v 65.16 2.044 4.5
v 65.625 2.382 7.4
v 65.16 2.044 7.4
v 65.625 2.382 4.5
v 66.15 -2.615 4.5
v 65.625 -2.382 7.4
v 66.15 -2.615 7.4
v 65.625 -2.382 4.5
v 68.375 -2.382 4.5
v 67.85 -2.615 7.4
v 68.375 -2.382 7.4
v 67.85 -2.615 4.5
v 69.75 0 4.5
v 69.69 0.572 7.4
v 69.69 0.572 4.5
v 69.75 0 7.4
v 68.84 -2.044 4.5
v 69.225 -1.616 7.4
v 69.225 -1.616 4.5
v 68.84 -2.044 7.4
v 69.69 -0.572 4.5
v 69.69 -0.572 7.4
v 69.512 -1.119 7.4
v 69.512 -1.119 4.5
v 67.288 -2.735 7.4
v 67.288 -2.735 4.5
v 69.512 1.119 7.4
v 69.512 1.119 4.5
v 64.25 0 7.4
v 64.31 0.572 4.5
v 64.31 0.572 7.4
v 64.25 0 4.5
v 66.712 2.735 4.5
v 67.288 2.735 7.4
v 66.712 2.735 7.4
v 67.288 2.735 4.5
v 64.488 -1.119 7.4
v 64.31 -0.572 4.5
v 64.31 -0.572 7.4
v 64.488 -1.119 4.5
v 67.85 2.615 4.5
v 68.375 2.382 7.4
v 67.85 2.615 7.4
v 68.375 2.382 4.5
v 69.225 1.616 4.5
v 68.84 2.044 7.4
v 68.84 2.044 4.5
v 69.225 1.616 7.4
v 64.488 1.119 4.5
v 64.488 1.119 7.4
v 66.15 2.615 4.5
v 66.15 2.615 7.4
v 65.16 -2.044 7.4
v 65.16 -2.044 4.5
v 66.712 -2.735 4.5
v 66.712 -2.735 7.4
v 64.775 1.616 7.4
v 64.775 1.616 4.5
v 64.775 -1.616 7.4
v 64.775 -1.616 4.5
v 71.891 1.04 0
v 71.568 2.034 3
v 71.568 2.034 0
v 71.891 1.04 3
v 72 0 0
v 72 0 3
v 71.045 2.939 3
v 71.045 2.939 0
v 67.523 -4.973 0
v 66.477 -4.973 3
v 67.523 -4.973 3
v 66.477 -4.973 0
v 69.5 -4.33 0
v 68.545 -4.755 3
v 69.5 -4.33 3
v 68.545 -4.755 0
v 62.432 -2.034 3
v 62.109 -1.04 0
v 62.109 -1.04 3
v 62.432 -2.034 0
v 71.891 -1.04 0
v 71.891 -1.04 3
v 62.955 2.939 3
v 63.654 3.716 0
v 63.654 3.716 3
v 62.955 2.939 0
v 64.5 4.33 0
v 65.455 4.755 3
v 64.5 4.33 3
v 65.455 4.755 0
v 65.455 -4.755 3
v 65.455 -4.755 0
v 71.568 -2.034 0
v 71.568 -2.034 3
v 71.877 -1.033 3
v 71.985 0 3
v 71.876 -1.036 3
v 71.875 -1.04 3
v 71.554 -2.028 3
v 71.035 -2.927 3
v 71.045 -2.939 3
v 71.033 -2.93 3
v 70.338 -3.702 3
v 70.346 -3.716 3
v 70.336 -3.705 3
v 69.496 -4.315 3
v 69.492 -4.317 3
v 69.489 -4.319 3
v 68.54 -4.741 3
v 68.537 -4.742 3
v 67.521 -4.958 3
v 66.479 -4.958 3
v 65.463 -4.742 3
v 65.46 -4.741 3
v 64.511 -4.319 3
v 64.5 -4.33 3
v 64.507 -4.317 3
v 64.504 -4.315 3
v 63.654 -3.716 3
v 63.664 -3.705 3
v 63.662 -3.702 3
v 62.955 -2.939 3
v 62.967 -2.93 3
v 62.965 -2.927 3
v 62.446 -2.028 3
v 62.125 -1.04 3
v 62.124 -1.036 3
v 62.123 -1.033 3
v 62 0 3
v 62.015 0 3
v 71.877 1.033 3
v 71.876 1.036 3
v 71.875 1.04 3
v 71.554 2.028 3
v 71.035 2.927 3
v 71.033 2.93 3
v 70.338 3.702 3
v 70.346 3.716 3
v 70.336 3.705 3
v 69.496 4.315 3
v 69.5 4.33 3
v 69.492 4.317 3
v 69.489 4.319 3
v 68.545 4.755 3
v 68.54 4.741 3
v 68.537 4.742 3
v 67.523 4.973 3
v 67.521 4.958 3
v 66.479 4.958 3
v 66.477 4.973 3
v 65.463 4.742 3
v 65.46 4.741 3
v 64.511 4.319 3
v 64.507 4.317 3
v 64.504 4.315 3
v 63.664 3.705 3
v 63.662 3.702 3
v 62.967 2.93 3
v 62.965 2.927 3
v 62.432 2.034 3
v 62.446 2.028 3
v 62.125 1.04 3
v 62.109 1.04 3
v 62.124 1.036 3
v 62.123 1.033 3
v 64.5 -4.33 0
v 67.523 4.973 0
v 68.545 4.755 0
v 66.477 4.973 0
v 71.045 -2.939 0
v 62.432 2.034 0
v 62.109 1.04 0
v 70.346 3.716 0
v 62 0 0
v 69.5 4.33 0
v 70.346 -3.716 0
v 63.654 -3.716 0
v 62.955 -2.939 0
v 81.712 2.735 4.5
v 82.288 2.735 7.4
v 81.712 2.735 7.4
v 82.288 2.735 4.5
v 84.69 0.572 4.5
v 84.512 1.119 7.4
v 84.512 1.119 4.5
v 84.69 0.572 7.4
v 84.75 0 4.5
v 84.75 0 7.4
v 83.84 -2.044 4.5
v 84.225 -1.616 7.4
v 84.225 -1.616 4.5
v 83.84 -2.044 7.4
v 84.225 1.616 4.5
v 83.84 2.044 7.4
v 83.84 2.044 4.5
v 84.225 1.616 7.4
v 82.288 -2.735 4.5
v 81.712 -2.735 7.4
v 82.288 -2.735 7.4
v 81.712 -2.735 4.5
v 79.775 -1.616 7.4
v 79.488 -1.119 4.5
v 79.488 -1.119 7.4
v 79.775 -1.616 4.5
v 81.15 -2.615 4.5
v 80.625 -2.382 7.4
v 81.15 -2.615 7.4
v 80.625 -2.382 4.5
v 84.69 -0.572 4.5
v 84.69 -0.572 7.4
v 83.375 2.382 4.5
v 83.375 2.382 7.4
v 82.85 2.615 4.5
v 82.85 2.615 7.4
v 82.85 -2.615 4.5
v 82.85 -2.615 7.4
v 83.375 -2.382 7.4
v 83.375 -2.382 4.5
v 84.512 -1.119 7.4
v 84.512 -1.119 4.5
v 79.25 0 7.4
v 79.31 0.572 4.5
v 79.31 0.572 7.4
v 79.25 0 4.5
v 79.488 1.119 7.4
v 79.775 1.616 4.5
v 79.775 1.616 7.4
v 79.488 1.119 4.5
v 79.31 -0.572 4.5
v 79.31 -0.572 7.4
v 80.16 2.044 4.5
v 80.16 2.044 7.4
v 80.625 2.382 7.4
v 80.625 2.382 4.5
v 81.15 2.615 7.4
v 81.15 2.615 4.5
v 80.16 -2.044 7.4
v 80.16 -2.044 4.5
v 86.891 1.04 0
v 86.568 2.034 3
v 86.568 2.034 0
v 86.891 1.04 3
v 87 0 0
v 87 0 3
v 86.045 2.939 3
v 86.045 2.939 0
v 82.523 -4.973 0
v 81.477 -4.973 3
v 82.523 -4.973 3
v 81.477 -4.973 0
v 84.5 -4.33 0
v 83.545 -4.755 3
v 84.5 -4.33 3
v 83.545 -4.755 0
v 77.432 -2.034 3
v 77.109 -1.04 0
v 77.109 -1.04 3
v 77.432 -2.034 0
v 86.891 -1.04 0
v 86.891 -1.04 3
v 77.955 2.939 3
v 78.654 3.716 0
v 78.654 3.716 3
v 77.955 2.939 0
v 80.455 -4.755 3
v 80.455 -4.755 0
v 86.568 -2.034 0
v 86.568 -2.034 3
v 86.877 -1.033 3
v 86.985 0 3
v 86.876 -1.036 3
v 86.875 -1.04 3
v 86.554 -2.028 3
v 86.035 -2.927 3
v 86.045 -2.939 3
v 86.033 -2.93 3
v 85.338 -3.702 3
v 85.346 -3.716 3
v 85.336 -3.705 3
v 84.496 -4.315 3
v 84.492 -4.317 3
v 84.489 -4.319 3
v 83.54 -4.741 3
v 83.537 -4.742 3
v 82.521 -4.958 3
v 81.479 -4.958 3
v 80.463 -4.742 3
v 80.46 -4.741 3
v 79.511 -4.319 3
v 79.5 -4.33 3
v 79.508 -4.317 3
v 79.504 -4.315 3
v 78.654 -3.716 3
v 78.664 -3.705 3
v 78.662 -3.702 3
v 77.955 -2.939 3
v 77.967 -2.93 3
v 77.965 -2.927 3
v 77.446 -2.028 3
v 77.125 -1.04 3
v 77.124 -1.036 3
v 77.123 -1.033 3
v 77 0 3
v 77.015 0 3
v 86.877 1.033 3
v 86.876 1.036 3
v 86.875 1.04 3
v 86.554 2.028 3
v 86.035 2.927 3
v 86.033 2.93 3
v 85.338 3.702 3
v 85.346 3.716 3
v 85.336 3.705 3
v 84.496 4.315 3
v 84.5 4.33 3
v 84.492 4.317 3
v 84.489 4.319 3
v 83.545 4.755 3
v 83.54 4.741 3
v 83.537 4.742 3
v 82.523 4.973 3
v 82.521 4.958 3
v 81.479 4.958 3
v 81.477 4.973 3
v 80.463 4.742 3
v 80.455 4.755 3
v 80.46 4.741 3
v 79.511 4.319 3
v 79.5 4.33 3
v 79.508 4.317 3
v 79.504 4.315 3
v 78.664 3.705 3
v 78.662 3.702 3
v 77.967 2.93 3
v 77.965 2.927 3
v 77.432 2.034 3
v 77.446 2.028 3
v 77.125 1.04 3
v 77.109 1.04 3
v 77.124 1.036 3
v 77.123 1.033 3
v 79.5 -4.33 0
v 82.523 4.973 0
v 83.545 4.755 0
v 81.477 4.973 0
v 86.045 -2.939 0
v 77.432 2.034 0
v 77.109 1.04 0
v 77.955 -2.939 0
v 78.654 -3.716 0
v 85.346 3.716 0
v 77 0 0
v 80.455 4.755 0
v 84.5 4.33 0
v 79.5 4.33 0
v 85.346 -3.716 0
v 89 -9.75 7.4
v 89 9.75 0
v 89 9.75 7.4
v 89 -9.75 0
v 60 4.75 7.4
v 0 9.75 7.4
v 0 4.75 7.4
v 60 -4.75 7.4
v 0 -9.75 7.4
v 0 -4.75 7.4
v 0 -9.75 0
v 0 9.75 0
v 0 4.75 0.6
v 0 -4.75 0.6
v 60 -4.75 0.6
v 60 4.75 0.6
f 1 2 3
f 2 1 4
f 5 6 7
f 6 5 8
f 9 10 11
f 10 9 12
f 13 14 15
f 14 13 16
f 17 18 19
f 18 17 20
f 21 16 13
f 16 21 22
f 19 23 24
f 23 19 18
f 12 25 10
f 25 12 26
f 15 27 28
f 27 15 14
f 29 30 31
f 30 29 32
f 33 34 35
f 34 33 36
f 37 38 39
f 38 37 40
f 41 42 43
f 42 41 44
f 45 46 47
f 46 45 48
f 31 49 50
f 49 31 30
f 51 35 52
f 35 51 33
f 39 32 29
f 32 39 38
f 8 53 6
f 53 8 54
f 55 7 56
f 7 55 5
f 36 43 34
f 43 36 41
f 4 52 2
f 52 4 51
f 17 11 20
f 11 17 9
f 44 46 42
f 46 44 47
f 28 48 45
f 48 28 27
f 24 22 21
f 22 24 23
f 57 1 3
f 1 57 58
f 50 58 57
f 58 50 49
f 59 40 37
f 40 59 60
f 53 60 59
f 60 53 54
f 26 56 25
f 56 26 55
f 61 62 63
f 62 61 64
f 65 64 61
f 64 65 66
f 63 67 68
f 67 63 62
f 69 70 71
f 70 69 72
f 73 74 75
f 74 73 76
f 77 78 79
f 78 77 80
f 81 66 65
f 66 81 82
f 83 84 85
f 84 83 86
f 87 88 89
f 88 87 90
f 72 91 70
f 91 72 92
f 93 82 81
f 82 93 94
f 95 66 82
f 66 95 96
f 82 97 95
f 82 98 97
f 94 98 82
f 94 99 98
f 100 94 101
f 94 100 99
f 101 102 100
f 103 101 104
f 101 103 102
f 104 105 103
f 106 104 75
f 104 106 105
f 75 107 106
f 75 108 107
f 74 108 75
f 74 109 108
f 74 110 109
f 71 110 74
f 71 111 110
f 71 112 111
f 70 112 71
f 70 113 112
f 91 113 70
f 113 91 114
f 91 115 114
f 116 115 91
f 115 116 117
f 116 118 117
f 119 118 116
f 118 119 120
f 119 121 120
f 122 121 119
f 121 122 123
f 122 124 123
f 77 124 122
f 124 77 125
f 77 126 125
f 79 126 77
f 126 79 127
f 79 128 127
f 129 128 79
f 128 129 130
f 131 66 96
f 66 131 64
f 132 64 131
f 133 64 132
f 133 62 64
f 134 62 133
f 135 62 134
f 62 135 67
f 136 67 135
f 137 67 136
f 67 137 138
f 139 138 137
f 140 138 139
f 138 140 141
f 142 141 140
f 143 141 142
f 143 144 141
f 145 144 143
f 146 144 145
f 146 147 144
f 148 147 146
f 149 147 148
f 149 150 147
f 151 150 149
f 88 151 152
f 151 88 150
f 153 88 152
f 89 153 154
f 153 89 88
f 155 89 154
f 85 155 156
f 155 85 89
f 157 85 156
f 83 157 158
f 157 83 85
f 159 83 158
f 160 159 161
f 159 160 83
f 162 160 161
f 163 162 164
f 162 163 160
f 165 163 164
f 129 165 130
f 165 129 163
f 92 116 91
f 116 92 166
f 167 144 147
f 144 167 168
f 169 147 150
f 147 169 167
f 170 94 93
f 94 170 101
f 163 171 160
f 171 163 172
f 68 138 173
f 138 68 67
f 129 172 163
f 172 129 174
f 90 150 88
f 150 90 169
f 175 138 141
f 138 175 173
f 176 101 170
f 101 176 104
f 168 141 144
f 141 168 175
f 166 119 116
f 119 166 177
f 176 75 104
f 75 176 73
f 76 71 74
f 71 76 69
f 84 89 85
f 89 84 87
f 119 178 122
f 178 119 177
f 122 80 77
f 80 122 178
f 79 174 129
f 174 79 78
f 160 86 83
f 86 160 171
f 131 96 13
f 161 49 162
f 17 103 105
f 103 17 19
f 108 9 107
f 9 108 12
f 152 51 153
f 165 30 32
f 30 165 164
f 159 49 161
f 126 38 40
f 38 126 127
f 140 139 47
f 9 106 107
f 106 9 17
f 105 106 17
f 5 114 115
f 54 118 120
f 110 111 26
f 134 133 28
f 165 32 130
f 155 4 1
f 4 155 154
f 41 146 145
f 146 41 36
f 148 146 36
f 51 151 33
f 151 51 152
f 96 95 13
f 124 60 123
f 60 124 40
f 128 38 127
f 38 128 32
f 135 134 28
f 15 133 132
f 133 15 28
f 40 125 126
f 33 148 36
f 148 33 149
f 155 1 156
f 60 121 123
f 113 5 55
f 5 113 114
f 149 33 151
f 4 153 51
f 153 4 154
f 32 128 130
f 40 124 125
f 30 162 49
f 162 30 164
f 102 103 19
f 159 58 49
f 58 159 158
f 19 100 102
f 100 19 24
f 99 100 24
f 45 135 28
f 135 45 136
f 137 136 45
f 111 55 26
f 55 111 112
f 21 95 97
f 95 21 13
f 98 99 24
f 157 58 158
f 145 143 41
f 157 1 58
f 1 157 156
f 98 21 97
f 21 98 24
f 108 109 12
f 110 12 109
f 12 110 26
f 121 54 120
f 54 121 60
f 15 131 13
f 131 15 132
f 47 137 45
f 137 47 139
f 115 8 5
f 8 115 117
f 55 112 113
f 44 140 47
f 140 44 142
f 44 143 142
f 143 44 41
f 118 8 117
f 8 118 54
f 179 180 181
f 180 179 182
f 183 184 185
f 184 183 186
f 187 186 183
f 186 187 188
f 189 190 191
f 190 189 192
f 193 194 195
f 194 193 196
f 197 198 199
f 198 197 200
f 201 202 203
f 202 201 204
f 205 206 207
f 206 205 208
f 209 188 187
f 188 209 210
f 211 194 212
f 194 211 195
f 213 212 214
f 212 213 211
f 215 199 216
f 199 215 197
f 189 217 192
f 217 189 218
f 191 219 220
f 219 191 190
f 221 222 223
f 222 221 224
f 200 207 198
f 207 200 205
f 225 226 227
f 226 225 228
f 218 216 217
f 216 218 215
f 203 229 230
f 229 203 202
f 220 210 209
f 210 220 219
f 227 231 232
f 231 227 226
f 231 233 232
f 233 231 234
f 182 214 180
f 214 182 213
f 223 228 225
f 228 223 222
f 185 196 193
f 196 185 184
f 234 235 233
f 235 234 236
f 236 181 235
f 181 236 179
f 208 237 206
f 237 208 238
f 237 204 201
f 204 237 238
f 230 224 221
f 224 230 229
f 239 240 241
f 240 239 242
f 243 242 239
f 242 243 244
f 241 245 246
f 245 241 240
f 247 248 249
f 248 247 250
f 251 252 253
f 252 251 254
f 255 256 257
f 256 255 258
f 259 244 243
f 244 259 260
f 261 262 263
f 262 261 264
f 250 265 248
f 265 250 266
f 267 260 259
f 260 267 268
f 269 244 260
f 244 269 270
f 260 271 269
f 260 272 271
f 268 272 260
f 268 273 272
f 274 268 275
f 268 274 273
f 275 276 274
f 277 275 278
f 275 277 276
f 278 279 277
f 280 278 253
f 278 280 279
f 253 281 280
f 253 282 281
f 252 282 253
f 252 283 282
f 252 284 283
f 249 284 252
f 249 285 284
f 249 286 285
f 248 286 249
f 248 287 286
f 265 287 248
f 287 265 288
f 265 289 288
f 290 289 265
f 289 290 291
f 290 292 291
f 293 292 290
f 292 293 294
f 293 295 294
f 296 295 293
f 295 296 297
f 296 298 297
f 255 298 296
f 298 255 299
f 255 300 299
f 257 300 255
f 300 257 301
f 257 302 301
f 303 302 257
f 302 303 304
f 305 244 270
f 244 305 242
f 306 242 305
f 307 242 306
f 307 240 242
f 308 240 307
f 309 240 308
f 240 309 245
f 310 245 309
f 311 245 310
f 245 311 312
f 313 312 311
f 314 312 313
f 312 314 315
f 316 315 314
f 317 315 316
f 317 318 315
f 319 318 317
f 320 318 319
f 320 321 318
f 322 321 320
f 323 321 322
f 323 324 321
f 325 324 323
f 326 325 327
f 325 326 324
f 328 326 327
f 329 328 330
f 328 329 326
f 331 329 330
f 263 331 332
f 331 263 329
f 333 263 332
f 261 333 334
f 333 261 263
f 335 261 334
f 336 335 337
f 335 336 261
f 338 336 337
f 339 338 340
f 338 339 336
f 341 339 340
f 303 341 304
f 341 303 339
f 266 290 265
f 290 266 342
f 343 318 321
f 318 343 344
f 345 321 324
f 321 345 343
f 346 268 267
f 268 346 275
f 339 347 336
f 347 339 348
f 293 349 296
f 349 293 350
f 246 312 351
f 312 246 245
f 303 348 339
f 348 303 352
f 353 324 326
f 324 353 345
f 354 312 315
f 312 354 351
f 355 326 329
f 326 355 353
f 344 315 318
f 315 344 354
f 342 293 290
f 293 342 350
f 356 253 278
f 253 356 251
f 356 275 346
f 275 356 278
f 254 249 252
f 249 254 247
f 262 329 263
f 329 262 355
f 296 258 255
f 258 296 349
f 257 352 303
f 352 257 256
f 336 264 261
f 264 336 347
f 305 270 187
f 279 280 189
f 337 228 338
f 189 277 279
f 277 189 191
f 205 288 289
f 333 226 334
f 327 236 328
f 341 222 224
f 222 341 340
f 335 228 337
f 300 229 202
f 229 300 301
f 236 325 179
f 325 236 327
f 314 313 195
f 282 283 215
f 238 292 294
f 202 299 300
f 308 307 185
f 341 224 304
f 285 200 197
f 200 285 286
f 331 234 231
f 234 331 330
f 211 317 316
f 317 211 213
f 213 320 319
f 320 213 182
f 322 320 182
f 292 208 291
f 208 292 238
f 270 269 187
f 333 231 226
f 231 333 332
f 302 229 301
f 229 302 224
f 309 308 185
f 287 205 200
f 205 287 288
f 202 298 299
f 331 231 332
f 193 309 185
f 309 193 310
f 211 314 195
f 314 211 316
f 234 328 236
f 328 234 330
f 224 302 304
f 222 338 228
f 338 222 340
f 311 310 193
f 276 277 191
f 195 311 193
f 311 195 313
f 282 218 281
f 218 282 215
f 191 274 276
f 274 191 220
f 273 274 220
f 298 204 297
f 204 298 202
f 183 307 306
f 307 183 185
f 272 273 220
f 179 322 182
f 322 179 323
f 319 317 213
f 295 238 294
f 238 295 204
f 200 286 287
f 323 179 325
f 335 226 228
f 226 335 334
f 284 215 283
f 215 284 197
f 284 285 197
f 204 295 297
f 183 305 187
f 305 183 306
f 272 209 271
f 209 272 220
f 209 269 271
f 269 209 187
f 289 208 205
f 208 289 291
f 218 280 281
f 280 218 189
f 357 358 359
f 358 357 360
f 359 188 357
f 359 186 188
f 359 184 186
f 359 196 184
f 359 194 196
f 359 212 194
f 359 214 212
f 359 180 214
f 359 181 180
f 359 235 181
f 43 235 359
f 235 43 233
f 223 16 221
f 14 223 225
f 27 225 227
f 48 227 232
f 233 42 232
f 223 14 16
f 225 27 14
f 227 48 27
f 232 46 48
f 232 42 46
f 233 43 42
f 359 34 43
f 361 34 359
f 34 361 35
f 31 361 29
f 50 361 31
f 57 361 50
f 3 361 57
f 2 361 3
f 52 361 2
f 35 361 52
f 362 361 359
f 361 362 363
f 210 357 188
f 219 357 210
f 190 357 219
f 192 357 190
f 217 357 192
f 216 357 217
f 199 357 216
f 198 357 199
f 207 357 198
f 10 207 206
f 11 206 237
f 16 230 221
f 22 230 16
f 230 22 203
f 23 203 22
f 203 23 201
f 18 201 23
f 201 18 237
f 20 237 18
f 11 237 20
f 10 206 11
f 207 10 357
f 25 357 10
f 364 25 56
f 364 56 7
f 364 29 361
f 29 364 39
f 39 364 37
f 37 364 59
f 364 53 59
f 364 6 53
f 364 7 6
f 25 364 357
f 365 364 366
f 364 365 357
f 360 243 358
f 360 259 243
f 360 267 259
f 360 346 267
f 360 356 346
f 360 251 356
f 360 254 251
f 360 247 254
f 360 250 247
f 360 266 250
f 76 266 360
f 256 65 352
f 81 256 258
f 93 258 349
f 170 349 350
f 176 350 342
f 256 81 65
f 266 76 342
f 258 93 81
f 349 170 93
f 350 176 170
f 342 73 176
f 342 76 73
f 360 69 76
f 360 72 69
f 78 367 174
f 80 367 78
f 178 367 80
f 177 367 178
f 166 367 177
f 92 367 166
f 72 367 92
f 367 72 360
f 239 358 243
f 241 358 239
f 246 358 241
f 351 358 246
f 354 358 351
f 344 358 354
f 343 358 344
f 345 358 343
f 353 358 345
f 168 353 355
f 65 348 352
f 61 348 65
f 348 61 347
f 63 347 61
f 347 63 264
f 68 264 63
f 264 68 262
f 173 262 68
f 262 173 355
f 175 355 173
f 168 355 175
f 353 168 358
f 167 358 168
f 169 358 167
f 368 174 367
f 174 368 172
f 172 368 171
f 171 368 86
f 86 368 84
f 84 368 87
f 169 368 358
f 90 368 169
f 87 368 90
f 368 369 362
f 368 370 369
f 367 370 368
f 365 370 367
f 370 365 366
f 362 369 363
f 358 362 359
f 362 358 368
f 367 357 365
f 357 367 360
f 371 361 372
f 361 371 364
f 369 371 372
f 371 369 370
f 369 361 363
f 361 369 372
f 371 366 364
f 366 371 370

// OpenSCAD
// Max Z stop for Voron 2.4 printers
//
// Copyright (C) 2021  Kevin O'Connor <kevin@koconnor.net>
//
// This file may be distributed under the terms of the GNU GPLv3 license.

// extrusion width = 20mm ; rail width = 9mm, rail depth = 6.5mm
// spring nut length = 13mm ; voron xy parts above carriage = 60mm
// m5 nut dia = 4.9mm ; m5 button head dia = 9.25

block_width = 19.5;
block_depth = 7.4;
railcut_length = 60;
block_length = railcut_length + 7 + 15 + 5 + 2;
railcut_width = 9.5;
railcut_depth = 6.8;
screw_dia = 5.5;
screw_head_dia = 10;
CUT = 0.01;
$fs = 0.5;

//
// Z stop
//

module z_stop() {
    module screwcut(x) {
        translate([x, 0, -CUT])
            cylinder(d=screw_dia, h=block_depth+2*CUT);
        bury = 3;
        translate([x, 0, -CUT])
            cylinder(d=screw_head_dia, h=bury+CUT);
        translate([x, 0, bury-CUT])
            cylinder(d1=screw_head_dia, d2=screw_dia, h=1.5+CUT);
    }
    module block() {
        difference() {
            translate([0, -block_width/2, 0])
                cube([block_length, block_width, block_depth]);
            translate([-CUT, -railcut_width/2, block_depth-railcut_depth])
                cube([railcut_length+CUT, railcut_width, railcut_depth+CUT]);
            screw1_x = railcut_length + screw_head_dia/2 + 2;
            screw2_x = screw1_x + 15;
            screwcut(screw1_x);
            screwcut(screw2_x);
        }
    }
    block();
}

//
// Object selection
//

z_stop();
